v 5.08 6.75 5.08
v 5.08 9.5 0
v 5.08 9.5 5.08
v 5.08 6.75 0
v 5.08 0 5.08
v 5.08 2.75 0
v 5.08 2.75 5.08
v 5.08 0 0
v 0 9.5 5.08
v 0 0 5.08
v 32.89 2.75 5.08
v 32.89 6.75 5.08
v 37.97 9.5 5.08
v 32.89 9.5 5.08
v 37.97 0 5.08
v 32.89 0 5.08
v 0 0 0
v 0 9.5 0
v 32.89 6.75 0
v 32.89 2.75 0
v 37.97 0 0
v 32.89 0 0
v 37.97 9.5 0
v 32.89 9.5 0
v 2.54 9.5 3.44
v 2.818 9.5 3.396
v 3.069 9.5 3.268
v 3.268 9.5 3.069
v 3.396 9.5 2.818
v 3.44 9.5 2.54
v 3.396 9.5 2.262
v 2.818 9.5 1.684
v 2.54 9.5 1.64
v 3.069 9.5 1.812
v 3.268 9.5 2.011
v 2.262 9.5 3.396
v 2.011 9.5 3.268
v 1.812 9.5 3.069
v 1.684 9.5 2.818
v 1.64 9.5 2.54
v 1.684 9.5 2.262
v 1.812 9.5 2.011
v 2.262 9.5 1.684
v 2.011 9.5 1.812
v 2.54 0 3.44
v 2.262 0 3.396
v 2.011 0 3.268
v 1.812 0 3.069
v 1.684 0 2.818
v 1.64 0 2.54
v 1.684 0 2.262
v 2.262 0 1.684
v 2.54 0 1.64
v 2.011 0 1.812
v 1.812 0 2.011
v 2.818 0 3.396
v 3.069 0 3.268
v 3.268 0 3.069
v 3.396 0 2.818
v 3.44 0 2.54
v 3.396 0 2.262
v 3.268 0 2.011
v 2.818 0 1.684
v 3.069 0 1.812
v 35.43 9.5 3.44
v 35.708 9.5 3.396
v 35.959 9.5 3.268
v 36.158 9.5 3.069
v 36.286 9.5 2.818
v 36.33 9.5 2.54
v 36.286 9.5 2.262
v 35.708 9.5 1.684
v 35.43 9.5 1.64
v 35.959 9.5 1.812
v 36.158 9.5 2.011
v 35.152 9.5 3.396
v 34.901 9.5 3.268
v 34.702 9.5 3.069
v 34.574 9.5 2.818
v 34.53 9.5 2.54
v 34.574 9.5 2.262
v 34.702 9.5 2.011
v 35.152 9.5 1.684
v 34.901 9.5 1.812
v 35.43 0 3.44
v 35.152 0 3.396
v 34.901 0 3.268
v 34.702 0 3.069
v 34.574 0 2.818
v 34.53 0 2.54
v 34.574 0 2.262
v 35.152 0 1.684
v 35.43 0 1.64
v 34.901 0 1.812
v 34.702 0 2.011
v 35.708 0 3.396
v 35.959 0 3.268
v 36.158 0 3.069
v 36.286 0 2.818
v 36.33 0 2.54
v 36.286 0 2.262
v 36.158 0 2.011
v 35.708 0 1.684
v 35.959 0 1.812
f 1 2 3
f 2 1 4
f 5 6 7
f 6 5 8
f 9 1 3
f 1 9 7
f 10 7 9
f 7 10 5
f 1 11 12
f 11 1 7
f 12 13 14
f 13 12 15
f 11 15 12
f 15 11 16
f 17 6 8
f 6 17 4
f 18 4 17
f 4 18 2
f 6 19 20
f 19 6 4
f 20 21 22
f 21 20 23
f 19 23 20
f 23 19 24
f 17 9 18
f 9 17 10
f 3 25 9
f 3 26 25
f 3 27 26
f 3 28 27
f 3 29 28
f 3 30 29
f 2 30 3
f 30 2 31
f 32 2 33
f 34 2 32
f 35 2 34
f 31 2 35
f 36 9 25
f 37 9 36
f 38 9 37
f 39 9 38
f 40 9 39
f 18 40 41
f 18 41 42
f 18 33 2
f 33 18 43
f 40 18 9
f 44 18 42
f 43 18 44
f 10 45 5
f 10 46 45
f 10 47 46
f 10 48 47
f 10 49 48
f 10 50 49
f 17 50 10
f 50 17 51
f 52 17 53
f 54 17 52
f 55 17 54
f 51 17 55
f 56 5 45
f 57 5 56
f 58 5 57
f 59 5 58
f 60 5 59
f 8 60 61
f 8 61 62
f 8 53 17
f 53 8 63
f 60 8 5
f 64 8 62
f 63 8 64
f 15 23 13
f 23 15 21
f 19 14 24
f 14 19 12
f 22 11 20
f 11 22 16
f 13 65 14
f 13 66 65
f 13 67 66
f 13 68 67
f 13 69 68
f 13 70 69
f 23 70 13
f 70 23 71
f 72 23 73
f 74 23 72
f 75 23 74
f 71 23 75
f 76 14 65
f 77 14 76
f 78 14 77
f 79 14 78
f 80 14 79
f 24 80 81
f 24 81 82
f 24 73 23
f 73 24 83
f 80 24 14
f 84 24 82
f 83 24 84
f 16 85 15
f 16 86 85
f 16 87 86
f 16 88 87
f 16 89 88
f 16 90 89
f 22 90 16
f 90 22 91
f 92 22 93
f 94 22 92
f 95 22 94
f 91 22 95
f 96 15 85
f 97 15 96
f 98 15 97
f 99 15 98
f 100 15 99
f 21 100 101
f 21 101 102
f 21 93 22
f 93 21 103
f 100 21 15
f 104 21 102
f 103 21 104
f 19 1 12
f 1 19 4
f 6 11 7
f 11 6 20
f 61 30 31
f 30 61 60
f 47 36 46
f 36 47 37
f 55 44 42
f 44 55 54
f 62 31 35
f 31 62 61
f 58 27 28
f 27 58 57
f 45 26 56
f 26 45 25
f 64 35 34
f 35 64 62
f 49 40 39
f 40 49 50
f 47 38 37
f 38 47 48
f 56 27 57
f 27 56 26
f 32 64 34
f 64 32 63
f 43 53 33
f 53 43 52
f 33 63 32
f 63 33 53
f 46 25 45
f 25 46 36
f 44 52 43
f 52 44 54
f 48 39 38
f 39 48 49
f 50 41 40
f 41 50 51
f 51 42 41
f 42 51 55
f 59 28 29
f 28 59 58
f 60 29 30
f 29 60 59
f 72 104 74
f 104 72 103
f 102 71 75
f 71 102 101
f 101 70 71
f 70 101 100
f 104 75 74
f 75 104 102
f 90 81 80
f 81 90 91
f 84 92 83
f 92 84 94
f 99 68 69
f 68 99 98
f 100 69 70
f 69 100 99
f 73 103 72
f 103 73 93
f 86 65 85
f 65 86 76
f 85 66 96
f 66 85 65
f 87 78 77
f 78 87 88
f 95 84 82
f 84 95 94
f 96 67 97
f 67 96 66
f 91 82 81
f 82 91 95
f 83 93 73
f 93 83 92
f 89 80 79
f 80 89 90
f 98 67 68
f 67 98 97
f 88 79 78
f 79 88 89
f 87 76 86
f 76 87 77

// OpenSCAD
// must print two of this

base_height = 9.5;
base_length = 5.08;
base_width = 5.08;
bar_height = 4;
bar_width = 5.08;
hole_distance = 32.89;
hole_diameter = 1.8;

translate([base_length / 2, base_height / 2, base_width / 2]) {
    difference() {
        union() {
            cube([base_length, base_height, base_width], center=true);
            translate([hole_distance, 0, 0])
                cube([base_length, base_height, base_width], center=true);
            translate([hole_distance / 2, 0, -(base_width - bar_width) / 2])
                cube([hole_distance, bar_height, bar_width], center=true);
        }

        rotate([-90, 0, 0]) {
            cylinder(h=base_height, d=hole_diameter, $fn=20, center=true);
            translate([hole_distance, 0, 0])
                cylinder(h=base_height, d=hole_diameter, $fn=20, center=true);
        }
    }
}
